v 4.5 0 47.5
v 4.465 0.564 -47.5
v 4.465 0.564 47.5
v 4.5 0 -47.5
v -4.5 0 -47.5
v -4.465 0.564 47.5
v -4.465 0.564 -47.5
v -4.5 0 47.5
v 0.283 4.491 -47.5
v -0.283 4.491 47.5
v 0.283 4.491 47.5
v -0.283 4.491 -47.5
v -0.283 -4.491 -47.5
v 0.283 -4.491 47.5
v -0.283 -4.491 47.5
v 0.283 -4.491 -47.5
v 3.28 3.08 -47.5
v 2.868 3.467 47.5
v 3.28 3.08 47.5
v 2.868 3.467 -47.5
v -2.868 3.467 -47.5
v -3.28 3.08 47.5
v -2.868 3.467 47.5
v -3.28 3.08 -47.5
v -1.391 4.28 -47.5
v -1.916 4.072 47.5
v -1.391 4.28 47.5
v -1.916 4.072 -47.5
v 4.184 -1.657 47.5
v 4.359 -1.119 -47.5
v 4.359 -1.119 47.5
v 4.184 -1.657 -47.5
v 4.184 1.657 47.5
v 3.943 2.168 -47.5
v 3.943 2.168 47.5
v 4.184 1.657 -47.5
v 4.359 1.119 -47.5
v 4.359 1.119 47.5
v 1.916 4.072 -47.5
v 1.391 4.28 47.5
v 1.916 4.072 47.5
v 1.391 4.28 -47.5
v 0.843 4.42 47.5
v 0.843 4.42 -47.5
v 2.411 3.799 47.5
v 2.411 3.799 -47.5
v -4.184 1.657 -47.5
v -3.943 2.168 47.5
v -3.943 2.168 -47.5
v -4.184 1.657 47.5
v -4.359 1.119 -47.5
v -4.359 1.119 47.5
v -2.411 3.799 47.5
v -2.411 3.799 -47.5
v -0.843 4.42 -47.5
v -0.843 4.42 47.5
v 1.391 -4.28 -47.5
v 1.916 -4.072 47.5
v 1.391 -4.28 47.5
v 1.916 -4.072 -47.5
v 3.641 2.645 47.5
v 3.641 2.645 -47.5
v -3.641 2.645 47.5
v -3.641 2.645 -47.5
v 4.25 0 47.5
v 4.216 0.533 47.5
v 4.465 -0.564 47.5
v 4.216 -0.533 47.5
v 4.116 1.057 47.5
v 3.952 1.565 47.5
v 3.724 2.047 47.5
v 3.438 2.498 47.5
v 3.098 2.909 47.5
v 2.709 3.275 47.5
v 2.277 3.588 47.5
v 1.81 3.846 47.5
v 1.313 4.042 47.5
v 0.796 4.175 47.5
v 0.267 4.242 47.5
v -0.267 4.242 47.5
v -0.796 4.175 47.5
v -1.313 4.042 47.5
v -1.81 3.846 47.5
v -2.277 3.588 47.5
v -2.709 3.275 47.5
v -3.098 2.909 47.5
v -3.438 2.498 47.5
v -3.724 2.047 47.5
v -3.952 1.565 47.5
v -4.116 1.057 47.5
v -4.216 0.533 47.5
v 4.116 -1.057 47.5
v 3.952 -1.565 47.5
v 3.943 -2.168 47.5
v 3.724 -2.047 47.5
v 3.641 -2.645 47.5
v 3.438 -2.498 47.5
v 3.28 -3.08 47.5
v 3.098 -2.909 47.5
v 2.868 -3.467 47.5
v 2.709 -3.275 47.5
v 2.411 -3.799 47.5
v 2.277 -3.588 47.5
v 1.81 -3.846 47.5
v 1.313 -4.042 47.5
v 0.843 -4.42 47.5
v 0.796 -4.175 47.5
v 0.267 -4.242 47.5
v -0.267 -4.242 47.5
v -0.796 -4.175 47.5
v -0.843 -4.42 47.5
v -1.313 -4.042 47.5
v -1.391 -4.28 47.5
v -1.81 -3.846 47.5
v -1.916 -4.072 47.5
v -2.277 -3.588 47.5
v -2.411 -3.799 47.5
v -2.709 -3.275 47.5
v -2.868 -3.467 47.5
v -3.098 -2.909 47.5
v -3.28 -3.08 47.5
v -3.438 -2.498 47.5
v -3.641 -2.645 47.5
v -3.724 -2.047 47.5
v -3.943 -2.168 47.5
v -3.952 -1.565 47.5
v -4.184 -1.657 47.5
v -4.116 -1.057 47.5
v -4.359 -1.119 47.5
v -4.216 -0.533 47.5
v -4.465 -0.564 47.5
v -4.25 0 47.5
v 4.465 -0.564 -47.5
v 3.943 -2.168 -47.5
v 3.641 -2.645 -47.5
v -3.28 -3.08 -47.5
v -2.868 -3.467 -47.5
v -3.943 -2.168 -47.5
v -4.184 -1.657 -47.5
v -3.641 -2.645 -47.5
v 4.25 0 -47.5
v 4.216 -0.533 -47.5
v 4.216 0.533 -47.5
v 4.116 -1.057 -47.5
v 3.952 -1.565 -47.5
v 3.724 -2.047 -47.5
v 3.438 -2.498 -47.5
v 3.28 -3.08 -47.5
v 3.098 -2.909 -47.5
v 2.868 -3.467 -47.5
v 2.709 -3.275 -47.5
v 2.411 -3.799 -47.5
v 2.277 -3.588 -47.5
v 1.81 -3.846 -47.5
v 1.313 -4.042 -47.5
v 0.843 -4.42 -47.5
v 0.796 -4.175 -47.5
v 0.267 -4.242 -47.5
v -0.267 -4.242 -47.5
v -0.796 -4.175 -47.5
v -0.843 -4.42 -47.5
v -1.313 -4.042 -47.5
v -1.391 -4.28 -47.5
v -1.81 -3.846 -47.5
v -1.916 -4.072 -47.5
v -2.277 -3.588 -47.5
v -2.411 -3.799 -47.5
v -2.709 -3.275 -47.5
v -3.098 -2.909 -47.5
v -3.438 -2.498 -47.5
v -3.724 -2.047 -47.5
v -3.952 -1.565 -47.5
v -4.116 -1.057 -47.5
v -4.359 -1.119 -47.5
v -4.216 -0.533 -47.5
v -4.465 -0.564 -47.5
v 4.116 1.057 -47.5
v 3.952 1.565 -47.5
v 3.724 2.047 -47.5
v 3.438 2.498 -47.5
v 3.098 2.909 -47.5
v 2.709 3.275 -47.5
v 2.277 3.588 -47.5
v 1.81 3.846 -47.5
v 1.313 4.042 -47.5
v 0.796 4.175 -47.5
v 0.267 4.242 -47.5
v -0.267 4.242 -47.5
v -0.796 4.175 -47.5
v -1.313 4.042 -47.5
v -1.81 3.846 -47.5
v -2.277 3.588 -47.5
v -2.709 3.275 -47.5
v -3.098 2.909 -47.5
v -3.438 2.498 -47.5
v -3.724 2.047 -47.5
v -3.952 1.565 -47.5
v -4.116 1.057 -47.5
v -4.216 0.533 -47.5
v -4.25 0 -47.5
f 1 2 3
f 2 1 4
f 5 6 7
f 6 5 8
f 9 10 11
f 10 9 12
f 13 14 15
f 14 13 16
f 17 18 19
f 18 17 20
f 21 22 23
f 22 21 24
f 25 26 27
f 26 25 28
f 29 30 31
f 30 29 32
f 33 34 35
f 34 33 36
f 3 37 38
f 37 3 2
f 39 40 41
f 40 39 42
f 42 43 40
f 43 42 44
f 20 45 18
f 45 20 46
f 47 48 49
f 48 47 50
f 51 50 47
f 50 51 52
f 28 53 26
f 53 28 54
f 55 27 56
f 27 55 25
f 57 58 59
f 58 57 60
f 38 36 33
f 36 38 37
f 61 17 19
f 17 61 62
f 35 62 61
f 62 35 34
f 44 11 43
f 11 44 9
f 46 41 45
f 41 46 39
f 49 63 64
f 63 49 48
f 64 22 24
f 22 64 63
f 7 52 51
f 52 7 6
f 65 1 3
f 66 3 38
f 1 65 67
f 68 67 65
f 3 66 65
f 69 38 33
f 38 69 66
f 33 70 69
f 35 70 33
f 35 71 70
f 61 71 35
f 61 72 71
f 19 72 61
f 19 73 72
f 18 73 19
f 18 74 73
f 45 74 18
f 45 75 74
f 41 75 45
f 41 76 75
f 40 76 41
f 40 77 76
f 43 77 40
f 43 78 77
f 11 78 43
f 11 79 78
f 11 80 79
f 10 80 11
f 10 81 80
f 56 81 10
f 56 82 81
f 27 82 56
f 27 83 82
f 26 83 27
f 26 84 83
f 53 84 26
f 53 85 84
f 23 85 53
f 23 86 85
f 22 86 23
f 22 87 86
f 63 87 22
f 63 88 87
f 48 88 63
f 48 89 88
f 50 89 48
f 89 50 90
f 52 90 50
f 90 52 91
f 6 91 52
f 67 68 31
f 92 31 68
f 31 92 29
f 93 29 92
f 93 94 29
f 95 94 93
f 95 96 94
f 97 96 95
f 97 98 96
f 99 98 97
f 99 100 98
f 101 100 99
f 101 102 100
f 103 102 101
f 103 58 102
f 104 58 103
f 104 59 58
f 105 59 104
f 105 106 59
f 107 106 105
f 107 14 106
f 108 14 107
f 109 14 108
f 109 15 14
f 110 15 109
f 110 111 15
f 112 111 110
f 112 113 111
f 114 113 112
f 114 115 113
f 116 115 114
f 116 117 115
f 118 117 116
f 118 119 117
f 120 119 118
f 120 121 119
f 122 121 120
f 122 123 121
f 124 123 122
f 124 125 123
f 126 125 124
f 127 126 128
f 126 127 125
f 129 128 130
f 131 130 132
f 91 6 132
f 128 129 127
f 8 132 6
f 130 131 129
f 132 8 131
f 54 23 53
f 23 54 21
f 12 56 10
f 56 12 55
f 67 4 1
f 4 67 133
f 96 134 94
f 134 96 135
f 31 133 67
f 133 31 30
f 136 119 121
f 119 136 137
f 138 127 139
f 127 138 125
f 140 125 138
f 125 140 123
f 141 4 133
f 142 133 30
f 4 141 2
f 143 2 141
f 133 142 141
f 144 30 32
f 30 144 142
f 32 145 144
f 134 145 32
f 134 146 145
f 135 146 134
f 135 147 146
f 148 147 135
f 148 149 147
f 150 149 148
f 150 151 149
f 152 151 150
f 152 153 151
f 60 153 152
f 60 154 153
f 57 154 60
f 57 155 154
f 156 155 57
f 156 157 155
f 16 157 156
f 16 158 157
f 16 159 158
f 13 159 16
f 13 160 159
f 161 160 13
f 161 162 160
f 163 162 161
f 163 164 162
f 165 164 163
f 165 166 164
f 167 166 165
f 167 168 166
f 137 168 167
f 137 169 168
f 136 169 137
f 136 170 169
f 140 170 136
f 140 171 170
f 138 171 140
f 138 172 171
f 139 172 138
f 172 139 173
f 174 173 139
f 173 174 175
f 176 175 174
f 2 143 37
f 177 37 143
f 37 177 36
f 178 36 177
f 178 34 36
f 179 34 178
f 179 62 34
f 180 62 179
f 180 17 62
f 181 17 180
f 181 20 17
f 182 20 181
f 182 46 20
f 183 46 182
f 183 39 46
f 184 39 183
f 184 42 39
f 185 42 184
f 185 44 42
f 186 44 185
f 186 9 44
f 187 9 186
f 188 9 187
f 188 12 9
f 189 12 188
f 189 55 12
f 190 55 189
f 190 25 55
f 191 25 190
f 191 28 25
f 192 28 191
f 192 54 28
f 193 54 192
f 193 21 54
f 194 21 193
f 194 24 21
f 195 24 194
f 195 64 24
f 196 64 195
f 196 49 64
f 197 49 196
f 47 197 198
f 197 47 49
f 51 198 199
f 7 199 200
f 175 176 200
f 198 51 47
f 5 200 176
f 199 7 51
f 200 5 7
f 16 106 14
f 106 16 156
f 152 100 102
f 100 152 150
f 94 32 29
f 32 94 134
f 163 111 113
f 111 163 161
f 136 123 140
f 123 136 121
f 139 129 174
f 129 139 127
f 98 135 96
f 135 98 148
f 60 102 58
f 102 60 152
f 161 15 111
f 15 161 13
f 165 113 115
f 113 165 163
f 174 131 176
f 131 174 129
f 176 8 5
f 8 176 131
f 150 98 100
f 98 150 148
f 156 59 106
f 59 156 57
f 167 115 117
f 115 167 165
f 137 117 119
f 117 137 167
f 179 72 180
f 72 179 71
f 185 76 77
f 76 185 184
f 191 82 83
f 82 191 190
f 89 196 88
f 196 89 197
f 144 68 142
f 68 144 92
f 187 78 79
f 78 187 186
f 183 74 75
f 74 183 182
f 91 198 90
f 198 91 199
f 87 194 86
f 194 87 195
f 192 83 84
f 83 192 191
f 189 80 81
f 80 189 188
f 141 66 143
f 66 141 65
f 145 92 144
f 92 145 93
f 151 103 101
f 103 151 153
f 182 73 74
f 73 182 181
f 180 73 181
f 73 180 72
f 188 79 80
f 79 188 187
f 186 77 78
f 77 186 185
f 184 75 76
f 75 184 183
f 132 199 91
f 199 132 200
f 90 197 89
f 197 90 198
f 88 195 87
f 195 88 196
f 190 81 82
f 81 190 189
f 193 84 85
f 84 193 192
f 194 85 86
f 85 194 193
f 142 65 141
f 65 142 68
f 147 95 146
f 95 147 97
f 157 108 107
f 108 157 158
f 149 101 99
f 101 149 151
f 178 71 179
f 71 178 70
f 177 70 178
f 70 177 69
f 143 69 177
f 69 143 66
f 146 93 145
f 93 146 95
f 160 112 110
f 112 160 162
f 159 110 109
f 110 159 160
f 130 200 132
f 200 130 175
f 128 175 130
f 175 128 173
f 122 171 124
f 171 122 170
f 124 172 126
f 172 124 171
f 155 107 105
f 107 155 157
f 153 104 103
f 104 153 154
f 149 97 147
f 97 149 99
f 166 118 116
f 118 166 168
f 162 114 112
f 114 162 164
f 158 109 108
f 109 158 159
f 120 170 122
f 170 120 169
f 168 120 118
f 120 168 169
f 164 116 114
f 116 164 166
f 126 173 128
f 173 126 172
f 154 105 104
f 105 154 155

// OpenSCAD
$fn = 50;


difference() {
	union() {
		translate(v = [0, 0, -47.5000000000]) {
			cylinder(h = 95, r = 4.5000000000);
		}
	}
	union() {
		translate(v = [0, 0, -100.0000000000]) {
			cylinder(h = 200, r = 4.2500000000);
		}
	}
}
